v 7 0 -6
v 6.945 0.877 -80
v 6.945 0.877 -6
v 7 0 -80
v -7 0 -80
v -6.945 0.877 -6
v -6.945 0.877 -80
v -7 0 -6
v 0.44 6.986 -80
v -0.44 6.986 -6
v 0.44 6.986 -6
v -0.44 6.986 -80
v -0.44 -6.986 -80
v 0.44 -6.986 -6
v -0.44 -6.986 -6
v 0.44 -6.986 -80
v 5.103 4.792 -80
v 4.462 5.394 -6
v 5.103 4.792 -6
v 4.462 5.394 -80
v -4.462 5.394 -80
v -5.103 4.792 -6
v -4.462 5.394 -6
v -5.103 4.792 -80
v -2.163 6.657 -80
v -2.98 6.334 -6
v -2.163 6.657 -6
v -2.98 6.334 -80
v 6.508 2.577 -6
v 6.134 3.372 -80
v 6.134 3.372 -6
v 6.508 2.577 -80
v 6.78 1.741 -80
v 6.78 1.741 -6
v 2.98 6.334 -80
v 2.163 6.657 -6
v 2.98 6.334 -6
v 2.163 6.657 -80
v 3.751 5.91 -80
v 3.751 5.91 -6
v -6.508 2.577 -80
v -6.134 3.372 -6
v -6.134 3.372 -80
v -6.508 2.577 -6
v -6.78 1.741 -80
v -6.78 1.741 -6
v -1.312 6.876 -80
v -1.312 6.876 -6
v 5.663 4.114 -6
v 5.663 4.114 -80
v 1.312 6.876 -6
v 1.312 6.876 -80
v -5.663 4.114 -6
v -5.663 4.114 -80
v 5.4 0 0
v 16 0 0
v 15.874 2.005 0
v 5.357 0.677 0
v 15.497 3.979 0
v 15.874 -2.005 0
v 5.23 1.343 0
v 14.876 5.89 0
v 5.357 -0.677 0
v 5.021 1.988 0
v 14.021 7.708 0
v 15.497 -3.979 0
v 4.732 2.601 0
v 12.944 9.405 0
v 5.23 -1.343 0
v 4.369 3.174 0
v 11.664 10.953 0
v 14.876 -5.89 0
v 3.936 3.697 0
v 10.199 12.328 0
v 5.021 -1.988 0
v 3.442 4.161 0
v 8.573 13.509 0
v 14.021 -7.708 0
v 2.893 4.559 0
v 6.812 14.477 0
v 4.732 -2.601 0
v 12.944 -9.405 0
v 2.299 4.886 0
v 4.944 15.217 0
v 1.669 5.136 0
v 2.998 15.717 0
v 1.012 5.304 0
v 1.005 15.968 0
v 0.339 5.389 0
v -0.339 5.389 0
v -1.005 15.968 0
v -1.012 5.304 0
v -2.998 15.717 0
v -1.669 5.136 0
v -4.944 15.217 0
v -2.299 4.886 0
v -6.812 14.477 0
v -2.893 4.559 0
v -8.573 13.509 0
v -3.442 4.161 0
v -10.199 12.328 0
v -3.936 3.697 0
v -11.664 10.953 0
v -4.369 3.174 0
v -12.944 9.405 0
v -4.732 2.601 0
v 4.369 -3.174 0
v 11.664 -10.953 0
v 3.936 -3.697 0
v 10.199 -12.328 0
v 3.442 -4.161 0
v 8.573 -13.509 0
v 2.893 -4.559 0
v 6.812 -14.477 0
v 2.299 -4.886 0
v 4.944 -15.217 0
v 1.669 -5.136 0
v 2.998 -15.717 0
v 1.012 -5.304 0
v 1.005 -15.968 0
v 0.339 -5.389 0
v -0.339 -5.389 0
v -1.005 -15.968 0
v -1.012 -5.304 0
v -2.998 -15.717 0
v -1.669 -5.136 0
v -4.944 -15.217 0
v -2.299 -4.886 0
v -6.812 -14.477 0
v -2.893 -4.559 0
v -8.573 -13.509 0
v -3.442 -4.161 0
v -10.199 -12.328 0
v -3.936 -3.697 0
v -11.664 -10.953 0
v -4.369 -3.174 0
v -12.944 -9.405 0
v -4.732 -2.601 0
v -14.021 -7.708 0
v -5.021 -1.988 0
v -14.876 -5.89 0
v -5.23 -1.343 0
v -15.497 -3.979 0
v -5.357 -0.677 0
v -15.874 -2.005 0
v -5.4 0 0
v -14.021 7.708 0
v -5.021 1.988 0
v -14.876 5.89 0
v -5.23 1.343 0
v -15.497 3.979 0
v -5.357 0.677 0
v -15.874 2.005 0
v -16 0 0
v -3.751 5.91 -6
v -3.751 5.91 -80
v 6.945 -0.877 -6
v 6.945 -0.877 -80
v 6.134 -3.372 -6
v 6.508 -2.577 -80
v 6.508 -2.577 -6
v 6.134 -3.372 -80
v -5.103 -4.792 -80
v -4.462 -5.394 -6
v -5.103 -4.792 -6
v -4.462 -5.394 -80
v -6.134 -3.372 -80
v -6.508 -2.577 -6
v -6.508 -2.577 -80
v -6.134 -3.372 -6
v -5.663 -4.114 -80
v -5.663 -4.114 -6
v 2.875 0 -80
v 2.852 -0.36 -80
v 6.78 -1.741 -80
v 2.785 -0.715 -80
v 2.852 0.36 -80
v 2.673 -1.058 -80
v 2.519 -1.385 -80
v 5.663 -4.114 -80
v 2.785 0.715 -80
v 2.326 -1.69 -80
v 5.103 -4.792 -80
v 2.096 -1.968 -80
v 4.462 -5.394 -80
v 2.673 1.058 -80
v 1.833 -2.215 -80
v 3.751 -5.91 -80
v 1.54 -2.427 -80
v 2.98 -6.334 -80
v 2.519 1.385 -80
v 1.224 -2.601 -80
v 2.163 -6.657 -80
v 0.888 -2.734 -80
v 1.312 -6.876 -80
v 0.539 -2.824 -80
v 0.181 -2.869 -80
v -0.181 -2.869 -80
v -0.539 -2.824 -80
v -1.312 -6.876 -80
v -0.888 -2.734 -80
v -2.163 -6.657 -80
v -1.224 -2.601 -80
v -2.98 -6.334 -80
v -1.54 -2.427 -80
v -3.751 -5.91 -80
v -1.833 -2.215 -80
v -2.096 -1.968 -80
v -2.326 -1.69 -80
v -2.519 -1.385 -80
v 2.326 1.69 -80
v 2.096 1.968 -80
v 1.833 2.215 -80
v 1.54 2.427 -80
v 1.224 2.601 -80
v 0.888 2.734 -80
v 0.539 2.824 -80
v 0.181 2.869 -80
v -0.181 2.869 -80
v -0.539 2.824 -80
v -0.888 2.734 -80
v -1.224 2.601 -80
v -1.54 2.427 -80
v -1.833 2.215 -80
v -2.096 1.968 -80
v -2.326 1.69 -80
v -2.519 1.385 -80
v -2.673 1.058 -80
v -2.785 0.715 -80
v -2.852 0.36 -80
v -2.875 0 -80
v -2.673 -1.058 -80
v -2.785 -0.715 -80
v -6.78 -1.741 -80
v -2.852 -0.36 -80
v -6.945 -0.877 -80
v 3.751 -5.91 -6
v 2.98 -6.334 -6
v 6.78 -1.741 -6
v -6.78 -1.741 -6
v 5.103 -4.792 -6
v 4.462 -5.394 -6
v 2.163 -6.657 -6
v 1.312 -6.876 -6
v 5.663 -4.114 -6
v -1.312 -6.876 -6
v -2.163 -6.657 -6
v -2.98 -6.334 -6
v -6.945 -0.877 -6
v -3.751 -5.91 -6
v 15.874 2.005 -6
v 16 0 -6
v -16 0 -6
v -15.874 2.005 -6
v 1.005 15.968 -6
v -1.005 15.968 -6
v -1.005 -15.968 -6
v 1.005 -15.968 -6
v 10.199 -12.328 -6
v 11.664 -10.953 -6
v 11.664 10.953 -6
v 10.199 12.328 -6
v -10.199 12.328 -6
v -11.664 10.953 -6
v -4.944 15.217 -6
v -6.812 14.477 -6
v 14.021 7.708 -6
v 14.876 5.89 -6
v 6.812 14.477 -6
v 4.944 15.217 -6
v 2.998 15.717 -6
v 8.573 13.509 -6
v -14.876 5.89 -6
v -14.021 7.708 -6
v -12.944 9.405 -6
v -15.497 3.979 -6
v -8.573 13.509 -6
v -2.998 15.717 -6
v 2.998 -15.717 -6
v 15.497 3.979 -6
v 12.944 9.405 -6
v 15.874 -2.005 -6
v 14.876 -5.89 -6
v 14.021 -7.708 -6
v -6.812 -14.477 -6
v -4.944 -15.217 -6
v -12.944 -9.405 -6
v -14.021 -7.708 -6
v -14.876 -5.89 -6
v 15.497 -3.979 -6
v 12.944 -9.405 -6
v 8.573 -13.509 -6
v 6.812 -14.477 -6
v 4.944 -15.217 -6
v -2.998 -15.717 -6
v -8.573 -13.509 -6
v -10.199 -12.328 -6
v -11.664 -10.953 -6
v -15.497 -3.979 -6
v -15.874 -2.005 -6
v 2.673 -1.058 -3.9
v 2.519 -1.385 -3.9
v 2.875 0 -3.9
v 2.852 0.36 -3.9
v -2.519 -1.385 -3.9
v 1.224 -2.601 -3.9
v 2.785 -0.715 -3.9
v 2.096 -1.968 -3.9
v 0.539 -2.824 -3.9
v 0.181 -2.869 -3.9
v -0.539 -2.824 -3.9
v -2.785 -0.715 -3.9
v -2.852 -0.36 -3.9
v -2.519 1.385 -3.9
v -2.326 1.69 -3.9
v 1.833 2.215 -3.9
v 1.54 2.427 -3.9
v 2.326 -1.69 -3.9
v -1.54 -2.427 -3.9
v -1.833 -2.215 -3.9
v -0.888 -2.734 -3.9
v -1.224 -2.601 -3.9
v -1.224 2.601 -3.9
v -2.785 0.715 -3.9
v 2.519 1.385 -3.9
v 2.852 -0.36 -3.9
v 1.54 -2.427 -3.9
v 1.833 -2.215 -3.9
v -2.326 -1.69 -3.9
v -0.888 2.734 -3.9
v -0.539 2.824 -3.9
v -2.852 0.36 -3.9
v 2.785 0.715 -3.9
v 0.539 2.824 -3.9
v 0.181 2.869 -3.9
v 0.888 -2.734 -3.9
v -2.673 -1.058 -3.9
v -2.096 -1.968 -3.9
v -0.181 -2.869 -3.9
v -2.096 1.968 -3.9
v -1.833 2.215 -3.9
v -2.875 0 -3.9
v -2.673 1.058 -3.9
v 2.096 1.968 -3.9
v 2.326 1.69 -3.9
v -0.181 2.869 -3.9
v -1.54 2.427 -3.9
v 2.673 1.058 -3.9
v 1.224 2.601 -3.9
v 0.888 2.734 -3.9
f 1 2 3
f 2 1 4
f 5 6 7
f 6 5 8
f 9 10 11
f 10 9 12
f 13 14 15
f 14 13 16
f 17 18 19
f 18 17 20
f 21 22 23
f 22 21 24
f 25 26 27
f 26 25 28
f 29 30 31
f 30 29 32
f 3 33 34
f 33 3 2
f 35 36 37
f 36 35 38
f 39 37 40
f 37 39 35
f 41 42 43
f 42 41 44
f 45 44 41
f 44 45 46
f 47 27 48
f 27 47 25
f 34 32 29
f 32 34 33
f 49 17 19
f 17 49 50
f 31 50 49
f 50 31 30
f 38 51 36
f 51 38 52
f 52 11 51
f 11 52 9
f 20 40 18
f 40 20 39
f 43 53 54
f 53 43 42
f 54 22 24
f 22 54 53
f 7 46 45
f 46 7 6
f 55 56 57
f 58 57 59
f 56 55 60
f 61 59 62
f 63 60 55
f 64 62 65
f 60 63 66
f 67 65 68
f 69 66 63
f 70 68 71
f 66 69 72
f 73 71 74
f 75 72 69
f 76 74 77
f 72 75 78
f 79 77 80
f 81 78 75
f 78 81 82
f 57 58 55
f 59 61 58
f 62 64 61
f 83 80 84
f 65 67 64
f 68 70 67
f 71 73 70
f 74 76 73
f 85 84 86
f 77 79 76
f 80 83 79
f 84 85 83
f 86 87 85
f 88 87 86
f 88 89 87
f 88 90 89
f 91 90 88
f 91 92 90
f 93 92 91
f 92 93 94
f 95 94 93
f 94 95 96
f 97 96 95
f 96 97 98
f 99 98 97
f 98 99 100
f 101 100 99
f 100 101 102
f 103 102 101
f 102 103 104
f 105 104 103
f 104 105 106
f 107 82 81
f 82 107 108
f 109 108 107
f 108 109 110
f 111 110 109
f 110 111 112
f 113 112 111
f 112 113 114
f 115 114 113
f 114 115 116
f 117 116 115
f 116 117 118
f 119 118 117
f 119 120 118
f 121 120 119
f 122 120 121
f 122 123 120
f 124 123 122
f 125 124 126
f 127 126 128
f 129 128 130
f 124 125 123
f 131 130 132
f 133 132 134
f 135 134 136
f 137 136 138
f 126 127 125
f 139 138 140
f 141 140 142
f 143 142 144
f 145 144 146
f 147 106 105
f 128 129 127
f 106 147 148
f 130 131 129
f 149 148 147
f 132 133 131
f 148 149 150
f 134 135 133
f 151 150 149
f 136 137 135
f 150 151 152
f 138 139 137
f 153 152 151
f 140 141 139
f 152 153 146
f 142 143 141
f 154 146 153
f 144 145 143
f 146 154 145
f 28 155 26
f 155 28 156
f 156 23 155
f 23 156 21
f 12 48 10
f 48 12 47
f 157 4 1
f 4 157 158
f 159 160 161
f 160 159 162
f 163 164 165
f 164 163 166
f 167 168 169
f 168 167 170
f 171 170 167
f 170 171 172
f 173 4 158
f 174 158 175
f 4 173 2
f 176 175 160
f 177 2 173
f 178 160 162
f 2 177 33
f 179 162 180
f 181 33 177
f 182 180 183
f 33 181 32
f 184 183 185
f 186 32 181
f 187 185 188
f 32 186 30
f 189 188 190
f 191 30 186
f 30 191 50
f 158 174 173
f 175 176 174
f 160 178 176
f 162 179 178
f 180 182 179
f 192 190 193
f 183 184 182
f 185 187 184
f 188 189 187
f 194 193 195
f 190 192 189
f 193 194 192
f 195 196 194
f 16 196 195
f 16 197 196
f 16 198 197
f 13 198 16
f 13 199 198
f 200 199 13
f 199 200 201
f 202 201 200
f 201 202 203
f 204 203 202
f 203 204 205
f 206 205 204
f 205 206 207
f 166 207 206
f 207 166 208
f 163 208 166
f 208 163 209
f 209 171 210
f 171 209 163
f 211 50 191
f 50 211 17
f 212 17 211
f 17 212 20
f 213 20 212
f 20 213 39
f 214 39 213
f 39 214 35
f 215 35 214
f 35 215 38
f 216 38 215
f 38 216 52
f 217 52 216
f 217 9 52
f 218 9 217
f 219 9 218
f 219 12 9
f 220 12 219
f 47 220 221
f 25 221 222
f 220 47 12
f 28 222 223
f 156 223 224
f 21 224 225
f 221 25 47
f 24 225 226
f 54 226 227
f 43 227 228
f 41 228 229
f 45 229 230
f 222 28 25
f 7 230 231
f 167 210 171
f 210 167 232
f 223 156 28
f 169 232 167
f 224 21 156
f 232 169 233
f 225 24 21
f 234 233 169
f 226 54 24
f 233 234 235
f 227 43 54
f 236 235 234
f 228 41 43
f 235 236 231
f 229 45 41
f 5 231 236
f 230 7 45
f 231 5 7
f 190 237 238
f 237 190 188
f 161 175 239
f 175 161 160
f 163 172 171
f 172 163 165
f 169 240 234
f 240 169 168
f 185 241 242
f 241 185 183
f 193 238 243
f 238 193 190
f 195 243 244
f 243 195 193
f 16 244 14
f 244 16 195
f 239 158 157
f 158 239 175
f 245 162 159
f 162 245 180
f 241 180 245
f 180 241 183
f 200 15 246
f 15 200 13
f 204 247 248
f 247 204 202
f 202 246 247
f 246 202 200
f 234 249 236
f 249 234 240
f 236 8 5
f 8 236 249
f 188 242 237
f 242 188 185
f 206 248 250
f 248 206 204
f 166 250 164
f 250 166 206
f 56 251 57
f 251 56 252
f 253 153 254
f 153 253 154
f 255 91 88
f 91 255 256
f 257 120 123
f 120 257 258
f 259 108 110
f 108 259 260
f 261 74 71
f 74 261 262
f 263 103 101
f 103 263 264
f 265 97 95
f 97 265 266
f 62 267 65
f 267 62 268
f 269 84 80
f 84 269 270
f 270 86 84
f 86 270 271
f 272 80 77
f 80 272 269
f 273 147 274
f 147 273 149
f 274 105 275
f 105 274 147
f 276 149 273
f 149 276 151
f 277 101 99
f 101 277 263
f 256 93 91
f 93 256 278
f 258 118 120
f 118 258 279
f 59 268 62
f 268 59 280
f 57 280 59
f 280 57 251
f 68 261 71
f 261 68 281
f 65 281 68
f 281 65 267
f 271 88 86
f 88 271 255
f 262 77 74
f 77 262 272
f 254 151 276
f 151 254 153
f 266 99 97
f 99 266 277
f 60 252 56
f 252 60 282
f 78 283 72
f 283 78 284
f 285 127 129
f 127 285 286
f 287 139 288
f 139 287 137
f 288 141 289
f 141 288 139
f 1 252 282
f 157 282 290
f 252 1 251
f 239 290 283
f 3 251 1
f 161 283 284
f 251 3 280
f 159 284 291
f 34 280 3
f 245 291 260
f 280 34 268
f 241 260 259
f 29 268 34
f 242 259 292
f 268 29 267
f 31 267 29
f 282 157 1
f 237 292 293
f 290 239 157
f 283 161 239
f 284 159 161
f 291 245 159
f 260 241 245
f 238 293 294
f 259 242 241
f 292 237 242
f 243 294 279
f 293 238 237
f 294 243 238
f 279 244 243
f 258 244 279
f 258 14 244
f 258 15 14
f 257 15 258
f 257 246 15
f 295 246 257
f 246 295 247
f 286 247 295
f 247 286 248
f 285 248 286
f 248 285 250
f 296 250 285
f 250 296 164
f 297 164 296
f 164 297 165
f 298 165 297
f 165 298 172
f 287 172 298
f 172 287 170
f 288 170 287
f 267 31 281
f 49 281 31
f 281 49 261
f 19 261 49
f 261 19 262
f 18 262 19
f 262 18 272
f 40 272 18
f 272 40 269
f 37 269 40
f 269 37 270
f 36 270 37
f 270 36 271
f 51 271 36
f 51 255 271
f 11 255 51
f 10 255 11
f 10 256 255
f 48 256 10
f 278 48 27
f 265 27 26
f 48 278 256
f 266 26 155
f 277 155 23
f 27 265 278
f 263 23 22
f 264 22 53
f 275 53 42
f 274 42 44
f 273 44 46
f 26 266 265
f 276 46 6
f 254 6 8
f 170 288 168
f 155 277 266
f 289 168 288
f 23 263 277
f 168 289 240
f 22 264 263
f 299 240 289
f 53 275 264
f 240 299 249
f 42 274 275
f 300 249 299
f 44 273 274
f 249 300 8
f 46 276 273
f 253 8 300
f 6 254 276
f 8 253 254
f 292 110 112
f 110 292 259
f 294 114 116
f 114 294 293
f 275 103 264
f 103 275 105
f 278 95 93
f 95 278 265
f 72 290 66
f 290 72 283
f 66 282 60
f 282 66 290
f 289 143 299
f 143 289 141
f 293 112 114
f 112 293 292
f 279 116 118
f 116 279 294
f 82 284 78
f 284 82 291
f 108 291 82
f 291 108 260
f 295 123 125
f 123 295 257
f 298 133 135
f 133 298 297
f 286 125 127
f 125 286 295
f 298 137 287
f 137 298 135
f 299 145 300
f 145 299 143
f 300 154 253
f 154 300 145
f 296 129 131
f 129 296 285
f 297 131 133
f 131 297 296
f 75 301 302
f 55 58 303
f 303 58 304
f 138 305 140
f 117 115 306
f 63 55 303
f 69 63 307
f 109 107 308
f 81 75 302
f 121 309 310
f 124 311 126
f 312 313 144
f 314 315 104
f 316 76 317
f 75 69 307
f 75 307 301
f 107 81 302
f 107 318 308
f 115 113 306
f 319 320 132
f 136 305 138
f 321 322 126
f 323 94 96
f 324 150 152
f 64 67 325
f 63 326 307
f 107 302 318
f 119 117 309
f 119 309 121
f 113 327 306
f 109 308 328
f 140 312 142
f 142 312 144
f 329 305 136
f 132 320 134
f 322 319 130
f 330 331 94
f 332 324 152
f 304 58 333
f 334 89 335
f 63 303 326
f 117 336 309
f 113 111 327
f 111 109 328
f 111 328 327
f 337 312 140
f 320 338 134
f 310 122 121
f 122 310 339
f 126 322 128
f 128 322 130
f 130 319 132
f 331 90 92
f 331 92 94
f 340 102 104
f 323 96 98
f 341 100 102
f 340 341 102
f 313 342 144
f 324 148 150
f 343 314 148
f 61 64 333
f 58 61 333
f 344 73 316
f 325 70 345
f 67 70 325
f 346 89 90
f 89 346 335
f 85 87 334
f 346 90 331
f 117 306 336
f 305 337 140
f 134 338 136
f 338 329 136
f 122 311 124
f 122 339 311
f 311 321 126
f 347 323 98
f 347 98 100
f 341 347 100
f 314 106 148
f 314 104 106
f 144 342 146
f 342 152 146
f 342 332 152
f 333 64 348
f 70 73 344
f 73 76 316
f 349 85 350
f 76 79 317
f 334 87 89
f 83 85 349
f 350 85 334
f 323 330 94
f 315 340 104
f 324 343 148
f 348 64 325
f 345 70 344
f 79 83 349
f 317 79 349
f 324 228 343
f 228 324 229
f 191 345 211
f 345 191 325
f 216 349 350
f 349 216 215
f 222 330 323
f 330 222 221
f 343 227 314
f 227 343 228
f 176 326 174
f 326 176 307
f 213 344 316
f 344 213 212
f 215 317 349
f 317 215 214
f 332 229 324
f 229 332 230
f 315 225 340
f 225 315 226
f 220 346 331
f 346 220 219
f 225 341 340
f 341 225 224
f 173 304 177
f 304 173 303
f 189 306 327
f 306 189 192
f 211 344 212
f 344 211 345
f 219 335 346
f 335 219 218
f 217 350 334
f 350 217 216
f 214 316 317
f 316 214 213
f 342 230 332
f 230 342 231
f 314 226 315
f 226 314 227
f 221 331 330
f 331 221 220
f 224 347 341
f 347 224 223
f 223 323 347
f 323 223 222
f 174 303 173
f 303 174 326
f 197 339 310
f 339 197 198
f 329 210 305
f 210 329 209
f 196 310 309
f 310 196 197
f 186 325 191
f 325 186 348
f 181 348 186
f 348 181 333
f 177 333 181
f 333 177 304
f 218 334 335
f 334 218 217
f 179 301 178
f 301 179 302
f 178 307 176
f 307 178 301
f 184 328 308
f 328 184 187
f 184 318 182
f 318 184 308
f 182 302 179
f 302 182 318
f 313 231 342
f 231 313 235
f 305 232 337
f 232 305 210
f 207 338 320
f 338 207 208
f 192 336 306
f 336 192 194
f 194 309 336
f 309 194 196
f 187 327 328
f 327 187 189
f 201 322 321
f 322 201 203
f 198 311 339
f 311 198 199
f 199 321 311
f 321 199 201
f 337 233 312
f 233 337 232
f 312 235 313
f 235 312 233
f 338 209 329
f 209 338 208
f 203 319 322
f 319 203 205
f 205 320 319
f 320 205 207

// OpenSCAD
$fn = 50;


difference() {
	union() {
		translate(v = [0, 0, -80.0000000000]) {
			cylinder(h = 80, r = 7.0000000000);
		}
		translate(v = [0, 0, -6.0000000000]) {
			cylinder(h = 6, r = 16.0000000000);
		}
	}
	union() {
		translate(v = [0, 0, 0]) {
			rotate(a = [0, 0, 0]) {
				difference() {
					union() {
						#translate(v = [0, 0, -80.0000000000]) {
							cylinder(h = 80, r = 2.6000000000);
						}
						#translate(v = [0, 0, -3.9000000000]) {
							cylinder(h = 3.9000000000, r1 = 2.8750000000, r2 = 5.4000000000);
						}
						#translate(v = [0, 0, -80.0000000000]) {
							cylinder(h = 80, r = 2.8750000000);
						}
						#translate(v = [0, 0, -80.0000000000]) {
							cylinder(h = 80, r = 2.6000000000);
						}
					}
					union();
				}
			}
		}
	}
}
